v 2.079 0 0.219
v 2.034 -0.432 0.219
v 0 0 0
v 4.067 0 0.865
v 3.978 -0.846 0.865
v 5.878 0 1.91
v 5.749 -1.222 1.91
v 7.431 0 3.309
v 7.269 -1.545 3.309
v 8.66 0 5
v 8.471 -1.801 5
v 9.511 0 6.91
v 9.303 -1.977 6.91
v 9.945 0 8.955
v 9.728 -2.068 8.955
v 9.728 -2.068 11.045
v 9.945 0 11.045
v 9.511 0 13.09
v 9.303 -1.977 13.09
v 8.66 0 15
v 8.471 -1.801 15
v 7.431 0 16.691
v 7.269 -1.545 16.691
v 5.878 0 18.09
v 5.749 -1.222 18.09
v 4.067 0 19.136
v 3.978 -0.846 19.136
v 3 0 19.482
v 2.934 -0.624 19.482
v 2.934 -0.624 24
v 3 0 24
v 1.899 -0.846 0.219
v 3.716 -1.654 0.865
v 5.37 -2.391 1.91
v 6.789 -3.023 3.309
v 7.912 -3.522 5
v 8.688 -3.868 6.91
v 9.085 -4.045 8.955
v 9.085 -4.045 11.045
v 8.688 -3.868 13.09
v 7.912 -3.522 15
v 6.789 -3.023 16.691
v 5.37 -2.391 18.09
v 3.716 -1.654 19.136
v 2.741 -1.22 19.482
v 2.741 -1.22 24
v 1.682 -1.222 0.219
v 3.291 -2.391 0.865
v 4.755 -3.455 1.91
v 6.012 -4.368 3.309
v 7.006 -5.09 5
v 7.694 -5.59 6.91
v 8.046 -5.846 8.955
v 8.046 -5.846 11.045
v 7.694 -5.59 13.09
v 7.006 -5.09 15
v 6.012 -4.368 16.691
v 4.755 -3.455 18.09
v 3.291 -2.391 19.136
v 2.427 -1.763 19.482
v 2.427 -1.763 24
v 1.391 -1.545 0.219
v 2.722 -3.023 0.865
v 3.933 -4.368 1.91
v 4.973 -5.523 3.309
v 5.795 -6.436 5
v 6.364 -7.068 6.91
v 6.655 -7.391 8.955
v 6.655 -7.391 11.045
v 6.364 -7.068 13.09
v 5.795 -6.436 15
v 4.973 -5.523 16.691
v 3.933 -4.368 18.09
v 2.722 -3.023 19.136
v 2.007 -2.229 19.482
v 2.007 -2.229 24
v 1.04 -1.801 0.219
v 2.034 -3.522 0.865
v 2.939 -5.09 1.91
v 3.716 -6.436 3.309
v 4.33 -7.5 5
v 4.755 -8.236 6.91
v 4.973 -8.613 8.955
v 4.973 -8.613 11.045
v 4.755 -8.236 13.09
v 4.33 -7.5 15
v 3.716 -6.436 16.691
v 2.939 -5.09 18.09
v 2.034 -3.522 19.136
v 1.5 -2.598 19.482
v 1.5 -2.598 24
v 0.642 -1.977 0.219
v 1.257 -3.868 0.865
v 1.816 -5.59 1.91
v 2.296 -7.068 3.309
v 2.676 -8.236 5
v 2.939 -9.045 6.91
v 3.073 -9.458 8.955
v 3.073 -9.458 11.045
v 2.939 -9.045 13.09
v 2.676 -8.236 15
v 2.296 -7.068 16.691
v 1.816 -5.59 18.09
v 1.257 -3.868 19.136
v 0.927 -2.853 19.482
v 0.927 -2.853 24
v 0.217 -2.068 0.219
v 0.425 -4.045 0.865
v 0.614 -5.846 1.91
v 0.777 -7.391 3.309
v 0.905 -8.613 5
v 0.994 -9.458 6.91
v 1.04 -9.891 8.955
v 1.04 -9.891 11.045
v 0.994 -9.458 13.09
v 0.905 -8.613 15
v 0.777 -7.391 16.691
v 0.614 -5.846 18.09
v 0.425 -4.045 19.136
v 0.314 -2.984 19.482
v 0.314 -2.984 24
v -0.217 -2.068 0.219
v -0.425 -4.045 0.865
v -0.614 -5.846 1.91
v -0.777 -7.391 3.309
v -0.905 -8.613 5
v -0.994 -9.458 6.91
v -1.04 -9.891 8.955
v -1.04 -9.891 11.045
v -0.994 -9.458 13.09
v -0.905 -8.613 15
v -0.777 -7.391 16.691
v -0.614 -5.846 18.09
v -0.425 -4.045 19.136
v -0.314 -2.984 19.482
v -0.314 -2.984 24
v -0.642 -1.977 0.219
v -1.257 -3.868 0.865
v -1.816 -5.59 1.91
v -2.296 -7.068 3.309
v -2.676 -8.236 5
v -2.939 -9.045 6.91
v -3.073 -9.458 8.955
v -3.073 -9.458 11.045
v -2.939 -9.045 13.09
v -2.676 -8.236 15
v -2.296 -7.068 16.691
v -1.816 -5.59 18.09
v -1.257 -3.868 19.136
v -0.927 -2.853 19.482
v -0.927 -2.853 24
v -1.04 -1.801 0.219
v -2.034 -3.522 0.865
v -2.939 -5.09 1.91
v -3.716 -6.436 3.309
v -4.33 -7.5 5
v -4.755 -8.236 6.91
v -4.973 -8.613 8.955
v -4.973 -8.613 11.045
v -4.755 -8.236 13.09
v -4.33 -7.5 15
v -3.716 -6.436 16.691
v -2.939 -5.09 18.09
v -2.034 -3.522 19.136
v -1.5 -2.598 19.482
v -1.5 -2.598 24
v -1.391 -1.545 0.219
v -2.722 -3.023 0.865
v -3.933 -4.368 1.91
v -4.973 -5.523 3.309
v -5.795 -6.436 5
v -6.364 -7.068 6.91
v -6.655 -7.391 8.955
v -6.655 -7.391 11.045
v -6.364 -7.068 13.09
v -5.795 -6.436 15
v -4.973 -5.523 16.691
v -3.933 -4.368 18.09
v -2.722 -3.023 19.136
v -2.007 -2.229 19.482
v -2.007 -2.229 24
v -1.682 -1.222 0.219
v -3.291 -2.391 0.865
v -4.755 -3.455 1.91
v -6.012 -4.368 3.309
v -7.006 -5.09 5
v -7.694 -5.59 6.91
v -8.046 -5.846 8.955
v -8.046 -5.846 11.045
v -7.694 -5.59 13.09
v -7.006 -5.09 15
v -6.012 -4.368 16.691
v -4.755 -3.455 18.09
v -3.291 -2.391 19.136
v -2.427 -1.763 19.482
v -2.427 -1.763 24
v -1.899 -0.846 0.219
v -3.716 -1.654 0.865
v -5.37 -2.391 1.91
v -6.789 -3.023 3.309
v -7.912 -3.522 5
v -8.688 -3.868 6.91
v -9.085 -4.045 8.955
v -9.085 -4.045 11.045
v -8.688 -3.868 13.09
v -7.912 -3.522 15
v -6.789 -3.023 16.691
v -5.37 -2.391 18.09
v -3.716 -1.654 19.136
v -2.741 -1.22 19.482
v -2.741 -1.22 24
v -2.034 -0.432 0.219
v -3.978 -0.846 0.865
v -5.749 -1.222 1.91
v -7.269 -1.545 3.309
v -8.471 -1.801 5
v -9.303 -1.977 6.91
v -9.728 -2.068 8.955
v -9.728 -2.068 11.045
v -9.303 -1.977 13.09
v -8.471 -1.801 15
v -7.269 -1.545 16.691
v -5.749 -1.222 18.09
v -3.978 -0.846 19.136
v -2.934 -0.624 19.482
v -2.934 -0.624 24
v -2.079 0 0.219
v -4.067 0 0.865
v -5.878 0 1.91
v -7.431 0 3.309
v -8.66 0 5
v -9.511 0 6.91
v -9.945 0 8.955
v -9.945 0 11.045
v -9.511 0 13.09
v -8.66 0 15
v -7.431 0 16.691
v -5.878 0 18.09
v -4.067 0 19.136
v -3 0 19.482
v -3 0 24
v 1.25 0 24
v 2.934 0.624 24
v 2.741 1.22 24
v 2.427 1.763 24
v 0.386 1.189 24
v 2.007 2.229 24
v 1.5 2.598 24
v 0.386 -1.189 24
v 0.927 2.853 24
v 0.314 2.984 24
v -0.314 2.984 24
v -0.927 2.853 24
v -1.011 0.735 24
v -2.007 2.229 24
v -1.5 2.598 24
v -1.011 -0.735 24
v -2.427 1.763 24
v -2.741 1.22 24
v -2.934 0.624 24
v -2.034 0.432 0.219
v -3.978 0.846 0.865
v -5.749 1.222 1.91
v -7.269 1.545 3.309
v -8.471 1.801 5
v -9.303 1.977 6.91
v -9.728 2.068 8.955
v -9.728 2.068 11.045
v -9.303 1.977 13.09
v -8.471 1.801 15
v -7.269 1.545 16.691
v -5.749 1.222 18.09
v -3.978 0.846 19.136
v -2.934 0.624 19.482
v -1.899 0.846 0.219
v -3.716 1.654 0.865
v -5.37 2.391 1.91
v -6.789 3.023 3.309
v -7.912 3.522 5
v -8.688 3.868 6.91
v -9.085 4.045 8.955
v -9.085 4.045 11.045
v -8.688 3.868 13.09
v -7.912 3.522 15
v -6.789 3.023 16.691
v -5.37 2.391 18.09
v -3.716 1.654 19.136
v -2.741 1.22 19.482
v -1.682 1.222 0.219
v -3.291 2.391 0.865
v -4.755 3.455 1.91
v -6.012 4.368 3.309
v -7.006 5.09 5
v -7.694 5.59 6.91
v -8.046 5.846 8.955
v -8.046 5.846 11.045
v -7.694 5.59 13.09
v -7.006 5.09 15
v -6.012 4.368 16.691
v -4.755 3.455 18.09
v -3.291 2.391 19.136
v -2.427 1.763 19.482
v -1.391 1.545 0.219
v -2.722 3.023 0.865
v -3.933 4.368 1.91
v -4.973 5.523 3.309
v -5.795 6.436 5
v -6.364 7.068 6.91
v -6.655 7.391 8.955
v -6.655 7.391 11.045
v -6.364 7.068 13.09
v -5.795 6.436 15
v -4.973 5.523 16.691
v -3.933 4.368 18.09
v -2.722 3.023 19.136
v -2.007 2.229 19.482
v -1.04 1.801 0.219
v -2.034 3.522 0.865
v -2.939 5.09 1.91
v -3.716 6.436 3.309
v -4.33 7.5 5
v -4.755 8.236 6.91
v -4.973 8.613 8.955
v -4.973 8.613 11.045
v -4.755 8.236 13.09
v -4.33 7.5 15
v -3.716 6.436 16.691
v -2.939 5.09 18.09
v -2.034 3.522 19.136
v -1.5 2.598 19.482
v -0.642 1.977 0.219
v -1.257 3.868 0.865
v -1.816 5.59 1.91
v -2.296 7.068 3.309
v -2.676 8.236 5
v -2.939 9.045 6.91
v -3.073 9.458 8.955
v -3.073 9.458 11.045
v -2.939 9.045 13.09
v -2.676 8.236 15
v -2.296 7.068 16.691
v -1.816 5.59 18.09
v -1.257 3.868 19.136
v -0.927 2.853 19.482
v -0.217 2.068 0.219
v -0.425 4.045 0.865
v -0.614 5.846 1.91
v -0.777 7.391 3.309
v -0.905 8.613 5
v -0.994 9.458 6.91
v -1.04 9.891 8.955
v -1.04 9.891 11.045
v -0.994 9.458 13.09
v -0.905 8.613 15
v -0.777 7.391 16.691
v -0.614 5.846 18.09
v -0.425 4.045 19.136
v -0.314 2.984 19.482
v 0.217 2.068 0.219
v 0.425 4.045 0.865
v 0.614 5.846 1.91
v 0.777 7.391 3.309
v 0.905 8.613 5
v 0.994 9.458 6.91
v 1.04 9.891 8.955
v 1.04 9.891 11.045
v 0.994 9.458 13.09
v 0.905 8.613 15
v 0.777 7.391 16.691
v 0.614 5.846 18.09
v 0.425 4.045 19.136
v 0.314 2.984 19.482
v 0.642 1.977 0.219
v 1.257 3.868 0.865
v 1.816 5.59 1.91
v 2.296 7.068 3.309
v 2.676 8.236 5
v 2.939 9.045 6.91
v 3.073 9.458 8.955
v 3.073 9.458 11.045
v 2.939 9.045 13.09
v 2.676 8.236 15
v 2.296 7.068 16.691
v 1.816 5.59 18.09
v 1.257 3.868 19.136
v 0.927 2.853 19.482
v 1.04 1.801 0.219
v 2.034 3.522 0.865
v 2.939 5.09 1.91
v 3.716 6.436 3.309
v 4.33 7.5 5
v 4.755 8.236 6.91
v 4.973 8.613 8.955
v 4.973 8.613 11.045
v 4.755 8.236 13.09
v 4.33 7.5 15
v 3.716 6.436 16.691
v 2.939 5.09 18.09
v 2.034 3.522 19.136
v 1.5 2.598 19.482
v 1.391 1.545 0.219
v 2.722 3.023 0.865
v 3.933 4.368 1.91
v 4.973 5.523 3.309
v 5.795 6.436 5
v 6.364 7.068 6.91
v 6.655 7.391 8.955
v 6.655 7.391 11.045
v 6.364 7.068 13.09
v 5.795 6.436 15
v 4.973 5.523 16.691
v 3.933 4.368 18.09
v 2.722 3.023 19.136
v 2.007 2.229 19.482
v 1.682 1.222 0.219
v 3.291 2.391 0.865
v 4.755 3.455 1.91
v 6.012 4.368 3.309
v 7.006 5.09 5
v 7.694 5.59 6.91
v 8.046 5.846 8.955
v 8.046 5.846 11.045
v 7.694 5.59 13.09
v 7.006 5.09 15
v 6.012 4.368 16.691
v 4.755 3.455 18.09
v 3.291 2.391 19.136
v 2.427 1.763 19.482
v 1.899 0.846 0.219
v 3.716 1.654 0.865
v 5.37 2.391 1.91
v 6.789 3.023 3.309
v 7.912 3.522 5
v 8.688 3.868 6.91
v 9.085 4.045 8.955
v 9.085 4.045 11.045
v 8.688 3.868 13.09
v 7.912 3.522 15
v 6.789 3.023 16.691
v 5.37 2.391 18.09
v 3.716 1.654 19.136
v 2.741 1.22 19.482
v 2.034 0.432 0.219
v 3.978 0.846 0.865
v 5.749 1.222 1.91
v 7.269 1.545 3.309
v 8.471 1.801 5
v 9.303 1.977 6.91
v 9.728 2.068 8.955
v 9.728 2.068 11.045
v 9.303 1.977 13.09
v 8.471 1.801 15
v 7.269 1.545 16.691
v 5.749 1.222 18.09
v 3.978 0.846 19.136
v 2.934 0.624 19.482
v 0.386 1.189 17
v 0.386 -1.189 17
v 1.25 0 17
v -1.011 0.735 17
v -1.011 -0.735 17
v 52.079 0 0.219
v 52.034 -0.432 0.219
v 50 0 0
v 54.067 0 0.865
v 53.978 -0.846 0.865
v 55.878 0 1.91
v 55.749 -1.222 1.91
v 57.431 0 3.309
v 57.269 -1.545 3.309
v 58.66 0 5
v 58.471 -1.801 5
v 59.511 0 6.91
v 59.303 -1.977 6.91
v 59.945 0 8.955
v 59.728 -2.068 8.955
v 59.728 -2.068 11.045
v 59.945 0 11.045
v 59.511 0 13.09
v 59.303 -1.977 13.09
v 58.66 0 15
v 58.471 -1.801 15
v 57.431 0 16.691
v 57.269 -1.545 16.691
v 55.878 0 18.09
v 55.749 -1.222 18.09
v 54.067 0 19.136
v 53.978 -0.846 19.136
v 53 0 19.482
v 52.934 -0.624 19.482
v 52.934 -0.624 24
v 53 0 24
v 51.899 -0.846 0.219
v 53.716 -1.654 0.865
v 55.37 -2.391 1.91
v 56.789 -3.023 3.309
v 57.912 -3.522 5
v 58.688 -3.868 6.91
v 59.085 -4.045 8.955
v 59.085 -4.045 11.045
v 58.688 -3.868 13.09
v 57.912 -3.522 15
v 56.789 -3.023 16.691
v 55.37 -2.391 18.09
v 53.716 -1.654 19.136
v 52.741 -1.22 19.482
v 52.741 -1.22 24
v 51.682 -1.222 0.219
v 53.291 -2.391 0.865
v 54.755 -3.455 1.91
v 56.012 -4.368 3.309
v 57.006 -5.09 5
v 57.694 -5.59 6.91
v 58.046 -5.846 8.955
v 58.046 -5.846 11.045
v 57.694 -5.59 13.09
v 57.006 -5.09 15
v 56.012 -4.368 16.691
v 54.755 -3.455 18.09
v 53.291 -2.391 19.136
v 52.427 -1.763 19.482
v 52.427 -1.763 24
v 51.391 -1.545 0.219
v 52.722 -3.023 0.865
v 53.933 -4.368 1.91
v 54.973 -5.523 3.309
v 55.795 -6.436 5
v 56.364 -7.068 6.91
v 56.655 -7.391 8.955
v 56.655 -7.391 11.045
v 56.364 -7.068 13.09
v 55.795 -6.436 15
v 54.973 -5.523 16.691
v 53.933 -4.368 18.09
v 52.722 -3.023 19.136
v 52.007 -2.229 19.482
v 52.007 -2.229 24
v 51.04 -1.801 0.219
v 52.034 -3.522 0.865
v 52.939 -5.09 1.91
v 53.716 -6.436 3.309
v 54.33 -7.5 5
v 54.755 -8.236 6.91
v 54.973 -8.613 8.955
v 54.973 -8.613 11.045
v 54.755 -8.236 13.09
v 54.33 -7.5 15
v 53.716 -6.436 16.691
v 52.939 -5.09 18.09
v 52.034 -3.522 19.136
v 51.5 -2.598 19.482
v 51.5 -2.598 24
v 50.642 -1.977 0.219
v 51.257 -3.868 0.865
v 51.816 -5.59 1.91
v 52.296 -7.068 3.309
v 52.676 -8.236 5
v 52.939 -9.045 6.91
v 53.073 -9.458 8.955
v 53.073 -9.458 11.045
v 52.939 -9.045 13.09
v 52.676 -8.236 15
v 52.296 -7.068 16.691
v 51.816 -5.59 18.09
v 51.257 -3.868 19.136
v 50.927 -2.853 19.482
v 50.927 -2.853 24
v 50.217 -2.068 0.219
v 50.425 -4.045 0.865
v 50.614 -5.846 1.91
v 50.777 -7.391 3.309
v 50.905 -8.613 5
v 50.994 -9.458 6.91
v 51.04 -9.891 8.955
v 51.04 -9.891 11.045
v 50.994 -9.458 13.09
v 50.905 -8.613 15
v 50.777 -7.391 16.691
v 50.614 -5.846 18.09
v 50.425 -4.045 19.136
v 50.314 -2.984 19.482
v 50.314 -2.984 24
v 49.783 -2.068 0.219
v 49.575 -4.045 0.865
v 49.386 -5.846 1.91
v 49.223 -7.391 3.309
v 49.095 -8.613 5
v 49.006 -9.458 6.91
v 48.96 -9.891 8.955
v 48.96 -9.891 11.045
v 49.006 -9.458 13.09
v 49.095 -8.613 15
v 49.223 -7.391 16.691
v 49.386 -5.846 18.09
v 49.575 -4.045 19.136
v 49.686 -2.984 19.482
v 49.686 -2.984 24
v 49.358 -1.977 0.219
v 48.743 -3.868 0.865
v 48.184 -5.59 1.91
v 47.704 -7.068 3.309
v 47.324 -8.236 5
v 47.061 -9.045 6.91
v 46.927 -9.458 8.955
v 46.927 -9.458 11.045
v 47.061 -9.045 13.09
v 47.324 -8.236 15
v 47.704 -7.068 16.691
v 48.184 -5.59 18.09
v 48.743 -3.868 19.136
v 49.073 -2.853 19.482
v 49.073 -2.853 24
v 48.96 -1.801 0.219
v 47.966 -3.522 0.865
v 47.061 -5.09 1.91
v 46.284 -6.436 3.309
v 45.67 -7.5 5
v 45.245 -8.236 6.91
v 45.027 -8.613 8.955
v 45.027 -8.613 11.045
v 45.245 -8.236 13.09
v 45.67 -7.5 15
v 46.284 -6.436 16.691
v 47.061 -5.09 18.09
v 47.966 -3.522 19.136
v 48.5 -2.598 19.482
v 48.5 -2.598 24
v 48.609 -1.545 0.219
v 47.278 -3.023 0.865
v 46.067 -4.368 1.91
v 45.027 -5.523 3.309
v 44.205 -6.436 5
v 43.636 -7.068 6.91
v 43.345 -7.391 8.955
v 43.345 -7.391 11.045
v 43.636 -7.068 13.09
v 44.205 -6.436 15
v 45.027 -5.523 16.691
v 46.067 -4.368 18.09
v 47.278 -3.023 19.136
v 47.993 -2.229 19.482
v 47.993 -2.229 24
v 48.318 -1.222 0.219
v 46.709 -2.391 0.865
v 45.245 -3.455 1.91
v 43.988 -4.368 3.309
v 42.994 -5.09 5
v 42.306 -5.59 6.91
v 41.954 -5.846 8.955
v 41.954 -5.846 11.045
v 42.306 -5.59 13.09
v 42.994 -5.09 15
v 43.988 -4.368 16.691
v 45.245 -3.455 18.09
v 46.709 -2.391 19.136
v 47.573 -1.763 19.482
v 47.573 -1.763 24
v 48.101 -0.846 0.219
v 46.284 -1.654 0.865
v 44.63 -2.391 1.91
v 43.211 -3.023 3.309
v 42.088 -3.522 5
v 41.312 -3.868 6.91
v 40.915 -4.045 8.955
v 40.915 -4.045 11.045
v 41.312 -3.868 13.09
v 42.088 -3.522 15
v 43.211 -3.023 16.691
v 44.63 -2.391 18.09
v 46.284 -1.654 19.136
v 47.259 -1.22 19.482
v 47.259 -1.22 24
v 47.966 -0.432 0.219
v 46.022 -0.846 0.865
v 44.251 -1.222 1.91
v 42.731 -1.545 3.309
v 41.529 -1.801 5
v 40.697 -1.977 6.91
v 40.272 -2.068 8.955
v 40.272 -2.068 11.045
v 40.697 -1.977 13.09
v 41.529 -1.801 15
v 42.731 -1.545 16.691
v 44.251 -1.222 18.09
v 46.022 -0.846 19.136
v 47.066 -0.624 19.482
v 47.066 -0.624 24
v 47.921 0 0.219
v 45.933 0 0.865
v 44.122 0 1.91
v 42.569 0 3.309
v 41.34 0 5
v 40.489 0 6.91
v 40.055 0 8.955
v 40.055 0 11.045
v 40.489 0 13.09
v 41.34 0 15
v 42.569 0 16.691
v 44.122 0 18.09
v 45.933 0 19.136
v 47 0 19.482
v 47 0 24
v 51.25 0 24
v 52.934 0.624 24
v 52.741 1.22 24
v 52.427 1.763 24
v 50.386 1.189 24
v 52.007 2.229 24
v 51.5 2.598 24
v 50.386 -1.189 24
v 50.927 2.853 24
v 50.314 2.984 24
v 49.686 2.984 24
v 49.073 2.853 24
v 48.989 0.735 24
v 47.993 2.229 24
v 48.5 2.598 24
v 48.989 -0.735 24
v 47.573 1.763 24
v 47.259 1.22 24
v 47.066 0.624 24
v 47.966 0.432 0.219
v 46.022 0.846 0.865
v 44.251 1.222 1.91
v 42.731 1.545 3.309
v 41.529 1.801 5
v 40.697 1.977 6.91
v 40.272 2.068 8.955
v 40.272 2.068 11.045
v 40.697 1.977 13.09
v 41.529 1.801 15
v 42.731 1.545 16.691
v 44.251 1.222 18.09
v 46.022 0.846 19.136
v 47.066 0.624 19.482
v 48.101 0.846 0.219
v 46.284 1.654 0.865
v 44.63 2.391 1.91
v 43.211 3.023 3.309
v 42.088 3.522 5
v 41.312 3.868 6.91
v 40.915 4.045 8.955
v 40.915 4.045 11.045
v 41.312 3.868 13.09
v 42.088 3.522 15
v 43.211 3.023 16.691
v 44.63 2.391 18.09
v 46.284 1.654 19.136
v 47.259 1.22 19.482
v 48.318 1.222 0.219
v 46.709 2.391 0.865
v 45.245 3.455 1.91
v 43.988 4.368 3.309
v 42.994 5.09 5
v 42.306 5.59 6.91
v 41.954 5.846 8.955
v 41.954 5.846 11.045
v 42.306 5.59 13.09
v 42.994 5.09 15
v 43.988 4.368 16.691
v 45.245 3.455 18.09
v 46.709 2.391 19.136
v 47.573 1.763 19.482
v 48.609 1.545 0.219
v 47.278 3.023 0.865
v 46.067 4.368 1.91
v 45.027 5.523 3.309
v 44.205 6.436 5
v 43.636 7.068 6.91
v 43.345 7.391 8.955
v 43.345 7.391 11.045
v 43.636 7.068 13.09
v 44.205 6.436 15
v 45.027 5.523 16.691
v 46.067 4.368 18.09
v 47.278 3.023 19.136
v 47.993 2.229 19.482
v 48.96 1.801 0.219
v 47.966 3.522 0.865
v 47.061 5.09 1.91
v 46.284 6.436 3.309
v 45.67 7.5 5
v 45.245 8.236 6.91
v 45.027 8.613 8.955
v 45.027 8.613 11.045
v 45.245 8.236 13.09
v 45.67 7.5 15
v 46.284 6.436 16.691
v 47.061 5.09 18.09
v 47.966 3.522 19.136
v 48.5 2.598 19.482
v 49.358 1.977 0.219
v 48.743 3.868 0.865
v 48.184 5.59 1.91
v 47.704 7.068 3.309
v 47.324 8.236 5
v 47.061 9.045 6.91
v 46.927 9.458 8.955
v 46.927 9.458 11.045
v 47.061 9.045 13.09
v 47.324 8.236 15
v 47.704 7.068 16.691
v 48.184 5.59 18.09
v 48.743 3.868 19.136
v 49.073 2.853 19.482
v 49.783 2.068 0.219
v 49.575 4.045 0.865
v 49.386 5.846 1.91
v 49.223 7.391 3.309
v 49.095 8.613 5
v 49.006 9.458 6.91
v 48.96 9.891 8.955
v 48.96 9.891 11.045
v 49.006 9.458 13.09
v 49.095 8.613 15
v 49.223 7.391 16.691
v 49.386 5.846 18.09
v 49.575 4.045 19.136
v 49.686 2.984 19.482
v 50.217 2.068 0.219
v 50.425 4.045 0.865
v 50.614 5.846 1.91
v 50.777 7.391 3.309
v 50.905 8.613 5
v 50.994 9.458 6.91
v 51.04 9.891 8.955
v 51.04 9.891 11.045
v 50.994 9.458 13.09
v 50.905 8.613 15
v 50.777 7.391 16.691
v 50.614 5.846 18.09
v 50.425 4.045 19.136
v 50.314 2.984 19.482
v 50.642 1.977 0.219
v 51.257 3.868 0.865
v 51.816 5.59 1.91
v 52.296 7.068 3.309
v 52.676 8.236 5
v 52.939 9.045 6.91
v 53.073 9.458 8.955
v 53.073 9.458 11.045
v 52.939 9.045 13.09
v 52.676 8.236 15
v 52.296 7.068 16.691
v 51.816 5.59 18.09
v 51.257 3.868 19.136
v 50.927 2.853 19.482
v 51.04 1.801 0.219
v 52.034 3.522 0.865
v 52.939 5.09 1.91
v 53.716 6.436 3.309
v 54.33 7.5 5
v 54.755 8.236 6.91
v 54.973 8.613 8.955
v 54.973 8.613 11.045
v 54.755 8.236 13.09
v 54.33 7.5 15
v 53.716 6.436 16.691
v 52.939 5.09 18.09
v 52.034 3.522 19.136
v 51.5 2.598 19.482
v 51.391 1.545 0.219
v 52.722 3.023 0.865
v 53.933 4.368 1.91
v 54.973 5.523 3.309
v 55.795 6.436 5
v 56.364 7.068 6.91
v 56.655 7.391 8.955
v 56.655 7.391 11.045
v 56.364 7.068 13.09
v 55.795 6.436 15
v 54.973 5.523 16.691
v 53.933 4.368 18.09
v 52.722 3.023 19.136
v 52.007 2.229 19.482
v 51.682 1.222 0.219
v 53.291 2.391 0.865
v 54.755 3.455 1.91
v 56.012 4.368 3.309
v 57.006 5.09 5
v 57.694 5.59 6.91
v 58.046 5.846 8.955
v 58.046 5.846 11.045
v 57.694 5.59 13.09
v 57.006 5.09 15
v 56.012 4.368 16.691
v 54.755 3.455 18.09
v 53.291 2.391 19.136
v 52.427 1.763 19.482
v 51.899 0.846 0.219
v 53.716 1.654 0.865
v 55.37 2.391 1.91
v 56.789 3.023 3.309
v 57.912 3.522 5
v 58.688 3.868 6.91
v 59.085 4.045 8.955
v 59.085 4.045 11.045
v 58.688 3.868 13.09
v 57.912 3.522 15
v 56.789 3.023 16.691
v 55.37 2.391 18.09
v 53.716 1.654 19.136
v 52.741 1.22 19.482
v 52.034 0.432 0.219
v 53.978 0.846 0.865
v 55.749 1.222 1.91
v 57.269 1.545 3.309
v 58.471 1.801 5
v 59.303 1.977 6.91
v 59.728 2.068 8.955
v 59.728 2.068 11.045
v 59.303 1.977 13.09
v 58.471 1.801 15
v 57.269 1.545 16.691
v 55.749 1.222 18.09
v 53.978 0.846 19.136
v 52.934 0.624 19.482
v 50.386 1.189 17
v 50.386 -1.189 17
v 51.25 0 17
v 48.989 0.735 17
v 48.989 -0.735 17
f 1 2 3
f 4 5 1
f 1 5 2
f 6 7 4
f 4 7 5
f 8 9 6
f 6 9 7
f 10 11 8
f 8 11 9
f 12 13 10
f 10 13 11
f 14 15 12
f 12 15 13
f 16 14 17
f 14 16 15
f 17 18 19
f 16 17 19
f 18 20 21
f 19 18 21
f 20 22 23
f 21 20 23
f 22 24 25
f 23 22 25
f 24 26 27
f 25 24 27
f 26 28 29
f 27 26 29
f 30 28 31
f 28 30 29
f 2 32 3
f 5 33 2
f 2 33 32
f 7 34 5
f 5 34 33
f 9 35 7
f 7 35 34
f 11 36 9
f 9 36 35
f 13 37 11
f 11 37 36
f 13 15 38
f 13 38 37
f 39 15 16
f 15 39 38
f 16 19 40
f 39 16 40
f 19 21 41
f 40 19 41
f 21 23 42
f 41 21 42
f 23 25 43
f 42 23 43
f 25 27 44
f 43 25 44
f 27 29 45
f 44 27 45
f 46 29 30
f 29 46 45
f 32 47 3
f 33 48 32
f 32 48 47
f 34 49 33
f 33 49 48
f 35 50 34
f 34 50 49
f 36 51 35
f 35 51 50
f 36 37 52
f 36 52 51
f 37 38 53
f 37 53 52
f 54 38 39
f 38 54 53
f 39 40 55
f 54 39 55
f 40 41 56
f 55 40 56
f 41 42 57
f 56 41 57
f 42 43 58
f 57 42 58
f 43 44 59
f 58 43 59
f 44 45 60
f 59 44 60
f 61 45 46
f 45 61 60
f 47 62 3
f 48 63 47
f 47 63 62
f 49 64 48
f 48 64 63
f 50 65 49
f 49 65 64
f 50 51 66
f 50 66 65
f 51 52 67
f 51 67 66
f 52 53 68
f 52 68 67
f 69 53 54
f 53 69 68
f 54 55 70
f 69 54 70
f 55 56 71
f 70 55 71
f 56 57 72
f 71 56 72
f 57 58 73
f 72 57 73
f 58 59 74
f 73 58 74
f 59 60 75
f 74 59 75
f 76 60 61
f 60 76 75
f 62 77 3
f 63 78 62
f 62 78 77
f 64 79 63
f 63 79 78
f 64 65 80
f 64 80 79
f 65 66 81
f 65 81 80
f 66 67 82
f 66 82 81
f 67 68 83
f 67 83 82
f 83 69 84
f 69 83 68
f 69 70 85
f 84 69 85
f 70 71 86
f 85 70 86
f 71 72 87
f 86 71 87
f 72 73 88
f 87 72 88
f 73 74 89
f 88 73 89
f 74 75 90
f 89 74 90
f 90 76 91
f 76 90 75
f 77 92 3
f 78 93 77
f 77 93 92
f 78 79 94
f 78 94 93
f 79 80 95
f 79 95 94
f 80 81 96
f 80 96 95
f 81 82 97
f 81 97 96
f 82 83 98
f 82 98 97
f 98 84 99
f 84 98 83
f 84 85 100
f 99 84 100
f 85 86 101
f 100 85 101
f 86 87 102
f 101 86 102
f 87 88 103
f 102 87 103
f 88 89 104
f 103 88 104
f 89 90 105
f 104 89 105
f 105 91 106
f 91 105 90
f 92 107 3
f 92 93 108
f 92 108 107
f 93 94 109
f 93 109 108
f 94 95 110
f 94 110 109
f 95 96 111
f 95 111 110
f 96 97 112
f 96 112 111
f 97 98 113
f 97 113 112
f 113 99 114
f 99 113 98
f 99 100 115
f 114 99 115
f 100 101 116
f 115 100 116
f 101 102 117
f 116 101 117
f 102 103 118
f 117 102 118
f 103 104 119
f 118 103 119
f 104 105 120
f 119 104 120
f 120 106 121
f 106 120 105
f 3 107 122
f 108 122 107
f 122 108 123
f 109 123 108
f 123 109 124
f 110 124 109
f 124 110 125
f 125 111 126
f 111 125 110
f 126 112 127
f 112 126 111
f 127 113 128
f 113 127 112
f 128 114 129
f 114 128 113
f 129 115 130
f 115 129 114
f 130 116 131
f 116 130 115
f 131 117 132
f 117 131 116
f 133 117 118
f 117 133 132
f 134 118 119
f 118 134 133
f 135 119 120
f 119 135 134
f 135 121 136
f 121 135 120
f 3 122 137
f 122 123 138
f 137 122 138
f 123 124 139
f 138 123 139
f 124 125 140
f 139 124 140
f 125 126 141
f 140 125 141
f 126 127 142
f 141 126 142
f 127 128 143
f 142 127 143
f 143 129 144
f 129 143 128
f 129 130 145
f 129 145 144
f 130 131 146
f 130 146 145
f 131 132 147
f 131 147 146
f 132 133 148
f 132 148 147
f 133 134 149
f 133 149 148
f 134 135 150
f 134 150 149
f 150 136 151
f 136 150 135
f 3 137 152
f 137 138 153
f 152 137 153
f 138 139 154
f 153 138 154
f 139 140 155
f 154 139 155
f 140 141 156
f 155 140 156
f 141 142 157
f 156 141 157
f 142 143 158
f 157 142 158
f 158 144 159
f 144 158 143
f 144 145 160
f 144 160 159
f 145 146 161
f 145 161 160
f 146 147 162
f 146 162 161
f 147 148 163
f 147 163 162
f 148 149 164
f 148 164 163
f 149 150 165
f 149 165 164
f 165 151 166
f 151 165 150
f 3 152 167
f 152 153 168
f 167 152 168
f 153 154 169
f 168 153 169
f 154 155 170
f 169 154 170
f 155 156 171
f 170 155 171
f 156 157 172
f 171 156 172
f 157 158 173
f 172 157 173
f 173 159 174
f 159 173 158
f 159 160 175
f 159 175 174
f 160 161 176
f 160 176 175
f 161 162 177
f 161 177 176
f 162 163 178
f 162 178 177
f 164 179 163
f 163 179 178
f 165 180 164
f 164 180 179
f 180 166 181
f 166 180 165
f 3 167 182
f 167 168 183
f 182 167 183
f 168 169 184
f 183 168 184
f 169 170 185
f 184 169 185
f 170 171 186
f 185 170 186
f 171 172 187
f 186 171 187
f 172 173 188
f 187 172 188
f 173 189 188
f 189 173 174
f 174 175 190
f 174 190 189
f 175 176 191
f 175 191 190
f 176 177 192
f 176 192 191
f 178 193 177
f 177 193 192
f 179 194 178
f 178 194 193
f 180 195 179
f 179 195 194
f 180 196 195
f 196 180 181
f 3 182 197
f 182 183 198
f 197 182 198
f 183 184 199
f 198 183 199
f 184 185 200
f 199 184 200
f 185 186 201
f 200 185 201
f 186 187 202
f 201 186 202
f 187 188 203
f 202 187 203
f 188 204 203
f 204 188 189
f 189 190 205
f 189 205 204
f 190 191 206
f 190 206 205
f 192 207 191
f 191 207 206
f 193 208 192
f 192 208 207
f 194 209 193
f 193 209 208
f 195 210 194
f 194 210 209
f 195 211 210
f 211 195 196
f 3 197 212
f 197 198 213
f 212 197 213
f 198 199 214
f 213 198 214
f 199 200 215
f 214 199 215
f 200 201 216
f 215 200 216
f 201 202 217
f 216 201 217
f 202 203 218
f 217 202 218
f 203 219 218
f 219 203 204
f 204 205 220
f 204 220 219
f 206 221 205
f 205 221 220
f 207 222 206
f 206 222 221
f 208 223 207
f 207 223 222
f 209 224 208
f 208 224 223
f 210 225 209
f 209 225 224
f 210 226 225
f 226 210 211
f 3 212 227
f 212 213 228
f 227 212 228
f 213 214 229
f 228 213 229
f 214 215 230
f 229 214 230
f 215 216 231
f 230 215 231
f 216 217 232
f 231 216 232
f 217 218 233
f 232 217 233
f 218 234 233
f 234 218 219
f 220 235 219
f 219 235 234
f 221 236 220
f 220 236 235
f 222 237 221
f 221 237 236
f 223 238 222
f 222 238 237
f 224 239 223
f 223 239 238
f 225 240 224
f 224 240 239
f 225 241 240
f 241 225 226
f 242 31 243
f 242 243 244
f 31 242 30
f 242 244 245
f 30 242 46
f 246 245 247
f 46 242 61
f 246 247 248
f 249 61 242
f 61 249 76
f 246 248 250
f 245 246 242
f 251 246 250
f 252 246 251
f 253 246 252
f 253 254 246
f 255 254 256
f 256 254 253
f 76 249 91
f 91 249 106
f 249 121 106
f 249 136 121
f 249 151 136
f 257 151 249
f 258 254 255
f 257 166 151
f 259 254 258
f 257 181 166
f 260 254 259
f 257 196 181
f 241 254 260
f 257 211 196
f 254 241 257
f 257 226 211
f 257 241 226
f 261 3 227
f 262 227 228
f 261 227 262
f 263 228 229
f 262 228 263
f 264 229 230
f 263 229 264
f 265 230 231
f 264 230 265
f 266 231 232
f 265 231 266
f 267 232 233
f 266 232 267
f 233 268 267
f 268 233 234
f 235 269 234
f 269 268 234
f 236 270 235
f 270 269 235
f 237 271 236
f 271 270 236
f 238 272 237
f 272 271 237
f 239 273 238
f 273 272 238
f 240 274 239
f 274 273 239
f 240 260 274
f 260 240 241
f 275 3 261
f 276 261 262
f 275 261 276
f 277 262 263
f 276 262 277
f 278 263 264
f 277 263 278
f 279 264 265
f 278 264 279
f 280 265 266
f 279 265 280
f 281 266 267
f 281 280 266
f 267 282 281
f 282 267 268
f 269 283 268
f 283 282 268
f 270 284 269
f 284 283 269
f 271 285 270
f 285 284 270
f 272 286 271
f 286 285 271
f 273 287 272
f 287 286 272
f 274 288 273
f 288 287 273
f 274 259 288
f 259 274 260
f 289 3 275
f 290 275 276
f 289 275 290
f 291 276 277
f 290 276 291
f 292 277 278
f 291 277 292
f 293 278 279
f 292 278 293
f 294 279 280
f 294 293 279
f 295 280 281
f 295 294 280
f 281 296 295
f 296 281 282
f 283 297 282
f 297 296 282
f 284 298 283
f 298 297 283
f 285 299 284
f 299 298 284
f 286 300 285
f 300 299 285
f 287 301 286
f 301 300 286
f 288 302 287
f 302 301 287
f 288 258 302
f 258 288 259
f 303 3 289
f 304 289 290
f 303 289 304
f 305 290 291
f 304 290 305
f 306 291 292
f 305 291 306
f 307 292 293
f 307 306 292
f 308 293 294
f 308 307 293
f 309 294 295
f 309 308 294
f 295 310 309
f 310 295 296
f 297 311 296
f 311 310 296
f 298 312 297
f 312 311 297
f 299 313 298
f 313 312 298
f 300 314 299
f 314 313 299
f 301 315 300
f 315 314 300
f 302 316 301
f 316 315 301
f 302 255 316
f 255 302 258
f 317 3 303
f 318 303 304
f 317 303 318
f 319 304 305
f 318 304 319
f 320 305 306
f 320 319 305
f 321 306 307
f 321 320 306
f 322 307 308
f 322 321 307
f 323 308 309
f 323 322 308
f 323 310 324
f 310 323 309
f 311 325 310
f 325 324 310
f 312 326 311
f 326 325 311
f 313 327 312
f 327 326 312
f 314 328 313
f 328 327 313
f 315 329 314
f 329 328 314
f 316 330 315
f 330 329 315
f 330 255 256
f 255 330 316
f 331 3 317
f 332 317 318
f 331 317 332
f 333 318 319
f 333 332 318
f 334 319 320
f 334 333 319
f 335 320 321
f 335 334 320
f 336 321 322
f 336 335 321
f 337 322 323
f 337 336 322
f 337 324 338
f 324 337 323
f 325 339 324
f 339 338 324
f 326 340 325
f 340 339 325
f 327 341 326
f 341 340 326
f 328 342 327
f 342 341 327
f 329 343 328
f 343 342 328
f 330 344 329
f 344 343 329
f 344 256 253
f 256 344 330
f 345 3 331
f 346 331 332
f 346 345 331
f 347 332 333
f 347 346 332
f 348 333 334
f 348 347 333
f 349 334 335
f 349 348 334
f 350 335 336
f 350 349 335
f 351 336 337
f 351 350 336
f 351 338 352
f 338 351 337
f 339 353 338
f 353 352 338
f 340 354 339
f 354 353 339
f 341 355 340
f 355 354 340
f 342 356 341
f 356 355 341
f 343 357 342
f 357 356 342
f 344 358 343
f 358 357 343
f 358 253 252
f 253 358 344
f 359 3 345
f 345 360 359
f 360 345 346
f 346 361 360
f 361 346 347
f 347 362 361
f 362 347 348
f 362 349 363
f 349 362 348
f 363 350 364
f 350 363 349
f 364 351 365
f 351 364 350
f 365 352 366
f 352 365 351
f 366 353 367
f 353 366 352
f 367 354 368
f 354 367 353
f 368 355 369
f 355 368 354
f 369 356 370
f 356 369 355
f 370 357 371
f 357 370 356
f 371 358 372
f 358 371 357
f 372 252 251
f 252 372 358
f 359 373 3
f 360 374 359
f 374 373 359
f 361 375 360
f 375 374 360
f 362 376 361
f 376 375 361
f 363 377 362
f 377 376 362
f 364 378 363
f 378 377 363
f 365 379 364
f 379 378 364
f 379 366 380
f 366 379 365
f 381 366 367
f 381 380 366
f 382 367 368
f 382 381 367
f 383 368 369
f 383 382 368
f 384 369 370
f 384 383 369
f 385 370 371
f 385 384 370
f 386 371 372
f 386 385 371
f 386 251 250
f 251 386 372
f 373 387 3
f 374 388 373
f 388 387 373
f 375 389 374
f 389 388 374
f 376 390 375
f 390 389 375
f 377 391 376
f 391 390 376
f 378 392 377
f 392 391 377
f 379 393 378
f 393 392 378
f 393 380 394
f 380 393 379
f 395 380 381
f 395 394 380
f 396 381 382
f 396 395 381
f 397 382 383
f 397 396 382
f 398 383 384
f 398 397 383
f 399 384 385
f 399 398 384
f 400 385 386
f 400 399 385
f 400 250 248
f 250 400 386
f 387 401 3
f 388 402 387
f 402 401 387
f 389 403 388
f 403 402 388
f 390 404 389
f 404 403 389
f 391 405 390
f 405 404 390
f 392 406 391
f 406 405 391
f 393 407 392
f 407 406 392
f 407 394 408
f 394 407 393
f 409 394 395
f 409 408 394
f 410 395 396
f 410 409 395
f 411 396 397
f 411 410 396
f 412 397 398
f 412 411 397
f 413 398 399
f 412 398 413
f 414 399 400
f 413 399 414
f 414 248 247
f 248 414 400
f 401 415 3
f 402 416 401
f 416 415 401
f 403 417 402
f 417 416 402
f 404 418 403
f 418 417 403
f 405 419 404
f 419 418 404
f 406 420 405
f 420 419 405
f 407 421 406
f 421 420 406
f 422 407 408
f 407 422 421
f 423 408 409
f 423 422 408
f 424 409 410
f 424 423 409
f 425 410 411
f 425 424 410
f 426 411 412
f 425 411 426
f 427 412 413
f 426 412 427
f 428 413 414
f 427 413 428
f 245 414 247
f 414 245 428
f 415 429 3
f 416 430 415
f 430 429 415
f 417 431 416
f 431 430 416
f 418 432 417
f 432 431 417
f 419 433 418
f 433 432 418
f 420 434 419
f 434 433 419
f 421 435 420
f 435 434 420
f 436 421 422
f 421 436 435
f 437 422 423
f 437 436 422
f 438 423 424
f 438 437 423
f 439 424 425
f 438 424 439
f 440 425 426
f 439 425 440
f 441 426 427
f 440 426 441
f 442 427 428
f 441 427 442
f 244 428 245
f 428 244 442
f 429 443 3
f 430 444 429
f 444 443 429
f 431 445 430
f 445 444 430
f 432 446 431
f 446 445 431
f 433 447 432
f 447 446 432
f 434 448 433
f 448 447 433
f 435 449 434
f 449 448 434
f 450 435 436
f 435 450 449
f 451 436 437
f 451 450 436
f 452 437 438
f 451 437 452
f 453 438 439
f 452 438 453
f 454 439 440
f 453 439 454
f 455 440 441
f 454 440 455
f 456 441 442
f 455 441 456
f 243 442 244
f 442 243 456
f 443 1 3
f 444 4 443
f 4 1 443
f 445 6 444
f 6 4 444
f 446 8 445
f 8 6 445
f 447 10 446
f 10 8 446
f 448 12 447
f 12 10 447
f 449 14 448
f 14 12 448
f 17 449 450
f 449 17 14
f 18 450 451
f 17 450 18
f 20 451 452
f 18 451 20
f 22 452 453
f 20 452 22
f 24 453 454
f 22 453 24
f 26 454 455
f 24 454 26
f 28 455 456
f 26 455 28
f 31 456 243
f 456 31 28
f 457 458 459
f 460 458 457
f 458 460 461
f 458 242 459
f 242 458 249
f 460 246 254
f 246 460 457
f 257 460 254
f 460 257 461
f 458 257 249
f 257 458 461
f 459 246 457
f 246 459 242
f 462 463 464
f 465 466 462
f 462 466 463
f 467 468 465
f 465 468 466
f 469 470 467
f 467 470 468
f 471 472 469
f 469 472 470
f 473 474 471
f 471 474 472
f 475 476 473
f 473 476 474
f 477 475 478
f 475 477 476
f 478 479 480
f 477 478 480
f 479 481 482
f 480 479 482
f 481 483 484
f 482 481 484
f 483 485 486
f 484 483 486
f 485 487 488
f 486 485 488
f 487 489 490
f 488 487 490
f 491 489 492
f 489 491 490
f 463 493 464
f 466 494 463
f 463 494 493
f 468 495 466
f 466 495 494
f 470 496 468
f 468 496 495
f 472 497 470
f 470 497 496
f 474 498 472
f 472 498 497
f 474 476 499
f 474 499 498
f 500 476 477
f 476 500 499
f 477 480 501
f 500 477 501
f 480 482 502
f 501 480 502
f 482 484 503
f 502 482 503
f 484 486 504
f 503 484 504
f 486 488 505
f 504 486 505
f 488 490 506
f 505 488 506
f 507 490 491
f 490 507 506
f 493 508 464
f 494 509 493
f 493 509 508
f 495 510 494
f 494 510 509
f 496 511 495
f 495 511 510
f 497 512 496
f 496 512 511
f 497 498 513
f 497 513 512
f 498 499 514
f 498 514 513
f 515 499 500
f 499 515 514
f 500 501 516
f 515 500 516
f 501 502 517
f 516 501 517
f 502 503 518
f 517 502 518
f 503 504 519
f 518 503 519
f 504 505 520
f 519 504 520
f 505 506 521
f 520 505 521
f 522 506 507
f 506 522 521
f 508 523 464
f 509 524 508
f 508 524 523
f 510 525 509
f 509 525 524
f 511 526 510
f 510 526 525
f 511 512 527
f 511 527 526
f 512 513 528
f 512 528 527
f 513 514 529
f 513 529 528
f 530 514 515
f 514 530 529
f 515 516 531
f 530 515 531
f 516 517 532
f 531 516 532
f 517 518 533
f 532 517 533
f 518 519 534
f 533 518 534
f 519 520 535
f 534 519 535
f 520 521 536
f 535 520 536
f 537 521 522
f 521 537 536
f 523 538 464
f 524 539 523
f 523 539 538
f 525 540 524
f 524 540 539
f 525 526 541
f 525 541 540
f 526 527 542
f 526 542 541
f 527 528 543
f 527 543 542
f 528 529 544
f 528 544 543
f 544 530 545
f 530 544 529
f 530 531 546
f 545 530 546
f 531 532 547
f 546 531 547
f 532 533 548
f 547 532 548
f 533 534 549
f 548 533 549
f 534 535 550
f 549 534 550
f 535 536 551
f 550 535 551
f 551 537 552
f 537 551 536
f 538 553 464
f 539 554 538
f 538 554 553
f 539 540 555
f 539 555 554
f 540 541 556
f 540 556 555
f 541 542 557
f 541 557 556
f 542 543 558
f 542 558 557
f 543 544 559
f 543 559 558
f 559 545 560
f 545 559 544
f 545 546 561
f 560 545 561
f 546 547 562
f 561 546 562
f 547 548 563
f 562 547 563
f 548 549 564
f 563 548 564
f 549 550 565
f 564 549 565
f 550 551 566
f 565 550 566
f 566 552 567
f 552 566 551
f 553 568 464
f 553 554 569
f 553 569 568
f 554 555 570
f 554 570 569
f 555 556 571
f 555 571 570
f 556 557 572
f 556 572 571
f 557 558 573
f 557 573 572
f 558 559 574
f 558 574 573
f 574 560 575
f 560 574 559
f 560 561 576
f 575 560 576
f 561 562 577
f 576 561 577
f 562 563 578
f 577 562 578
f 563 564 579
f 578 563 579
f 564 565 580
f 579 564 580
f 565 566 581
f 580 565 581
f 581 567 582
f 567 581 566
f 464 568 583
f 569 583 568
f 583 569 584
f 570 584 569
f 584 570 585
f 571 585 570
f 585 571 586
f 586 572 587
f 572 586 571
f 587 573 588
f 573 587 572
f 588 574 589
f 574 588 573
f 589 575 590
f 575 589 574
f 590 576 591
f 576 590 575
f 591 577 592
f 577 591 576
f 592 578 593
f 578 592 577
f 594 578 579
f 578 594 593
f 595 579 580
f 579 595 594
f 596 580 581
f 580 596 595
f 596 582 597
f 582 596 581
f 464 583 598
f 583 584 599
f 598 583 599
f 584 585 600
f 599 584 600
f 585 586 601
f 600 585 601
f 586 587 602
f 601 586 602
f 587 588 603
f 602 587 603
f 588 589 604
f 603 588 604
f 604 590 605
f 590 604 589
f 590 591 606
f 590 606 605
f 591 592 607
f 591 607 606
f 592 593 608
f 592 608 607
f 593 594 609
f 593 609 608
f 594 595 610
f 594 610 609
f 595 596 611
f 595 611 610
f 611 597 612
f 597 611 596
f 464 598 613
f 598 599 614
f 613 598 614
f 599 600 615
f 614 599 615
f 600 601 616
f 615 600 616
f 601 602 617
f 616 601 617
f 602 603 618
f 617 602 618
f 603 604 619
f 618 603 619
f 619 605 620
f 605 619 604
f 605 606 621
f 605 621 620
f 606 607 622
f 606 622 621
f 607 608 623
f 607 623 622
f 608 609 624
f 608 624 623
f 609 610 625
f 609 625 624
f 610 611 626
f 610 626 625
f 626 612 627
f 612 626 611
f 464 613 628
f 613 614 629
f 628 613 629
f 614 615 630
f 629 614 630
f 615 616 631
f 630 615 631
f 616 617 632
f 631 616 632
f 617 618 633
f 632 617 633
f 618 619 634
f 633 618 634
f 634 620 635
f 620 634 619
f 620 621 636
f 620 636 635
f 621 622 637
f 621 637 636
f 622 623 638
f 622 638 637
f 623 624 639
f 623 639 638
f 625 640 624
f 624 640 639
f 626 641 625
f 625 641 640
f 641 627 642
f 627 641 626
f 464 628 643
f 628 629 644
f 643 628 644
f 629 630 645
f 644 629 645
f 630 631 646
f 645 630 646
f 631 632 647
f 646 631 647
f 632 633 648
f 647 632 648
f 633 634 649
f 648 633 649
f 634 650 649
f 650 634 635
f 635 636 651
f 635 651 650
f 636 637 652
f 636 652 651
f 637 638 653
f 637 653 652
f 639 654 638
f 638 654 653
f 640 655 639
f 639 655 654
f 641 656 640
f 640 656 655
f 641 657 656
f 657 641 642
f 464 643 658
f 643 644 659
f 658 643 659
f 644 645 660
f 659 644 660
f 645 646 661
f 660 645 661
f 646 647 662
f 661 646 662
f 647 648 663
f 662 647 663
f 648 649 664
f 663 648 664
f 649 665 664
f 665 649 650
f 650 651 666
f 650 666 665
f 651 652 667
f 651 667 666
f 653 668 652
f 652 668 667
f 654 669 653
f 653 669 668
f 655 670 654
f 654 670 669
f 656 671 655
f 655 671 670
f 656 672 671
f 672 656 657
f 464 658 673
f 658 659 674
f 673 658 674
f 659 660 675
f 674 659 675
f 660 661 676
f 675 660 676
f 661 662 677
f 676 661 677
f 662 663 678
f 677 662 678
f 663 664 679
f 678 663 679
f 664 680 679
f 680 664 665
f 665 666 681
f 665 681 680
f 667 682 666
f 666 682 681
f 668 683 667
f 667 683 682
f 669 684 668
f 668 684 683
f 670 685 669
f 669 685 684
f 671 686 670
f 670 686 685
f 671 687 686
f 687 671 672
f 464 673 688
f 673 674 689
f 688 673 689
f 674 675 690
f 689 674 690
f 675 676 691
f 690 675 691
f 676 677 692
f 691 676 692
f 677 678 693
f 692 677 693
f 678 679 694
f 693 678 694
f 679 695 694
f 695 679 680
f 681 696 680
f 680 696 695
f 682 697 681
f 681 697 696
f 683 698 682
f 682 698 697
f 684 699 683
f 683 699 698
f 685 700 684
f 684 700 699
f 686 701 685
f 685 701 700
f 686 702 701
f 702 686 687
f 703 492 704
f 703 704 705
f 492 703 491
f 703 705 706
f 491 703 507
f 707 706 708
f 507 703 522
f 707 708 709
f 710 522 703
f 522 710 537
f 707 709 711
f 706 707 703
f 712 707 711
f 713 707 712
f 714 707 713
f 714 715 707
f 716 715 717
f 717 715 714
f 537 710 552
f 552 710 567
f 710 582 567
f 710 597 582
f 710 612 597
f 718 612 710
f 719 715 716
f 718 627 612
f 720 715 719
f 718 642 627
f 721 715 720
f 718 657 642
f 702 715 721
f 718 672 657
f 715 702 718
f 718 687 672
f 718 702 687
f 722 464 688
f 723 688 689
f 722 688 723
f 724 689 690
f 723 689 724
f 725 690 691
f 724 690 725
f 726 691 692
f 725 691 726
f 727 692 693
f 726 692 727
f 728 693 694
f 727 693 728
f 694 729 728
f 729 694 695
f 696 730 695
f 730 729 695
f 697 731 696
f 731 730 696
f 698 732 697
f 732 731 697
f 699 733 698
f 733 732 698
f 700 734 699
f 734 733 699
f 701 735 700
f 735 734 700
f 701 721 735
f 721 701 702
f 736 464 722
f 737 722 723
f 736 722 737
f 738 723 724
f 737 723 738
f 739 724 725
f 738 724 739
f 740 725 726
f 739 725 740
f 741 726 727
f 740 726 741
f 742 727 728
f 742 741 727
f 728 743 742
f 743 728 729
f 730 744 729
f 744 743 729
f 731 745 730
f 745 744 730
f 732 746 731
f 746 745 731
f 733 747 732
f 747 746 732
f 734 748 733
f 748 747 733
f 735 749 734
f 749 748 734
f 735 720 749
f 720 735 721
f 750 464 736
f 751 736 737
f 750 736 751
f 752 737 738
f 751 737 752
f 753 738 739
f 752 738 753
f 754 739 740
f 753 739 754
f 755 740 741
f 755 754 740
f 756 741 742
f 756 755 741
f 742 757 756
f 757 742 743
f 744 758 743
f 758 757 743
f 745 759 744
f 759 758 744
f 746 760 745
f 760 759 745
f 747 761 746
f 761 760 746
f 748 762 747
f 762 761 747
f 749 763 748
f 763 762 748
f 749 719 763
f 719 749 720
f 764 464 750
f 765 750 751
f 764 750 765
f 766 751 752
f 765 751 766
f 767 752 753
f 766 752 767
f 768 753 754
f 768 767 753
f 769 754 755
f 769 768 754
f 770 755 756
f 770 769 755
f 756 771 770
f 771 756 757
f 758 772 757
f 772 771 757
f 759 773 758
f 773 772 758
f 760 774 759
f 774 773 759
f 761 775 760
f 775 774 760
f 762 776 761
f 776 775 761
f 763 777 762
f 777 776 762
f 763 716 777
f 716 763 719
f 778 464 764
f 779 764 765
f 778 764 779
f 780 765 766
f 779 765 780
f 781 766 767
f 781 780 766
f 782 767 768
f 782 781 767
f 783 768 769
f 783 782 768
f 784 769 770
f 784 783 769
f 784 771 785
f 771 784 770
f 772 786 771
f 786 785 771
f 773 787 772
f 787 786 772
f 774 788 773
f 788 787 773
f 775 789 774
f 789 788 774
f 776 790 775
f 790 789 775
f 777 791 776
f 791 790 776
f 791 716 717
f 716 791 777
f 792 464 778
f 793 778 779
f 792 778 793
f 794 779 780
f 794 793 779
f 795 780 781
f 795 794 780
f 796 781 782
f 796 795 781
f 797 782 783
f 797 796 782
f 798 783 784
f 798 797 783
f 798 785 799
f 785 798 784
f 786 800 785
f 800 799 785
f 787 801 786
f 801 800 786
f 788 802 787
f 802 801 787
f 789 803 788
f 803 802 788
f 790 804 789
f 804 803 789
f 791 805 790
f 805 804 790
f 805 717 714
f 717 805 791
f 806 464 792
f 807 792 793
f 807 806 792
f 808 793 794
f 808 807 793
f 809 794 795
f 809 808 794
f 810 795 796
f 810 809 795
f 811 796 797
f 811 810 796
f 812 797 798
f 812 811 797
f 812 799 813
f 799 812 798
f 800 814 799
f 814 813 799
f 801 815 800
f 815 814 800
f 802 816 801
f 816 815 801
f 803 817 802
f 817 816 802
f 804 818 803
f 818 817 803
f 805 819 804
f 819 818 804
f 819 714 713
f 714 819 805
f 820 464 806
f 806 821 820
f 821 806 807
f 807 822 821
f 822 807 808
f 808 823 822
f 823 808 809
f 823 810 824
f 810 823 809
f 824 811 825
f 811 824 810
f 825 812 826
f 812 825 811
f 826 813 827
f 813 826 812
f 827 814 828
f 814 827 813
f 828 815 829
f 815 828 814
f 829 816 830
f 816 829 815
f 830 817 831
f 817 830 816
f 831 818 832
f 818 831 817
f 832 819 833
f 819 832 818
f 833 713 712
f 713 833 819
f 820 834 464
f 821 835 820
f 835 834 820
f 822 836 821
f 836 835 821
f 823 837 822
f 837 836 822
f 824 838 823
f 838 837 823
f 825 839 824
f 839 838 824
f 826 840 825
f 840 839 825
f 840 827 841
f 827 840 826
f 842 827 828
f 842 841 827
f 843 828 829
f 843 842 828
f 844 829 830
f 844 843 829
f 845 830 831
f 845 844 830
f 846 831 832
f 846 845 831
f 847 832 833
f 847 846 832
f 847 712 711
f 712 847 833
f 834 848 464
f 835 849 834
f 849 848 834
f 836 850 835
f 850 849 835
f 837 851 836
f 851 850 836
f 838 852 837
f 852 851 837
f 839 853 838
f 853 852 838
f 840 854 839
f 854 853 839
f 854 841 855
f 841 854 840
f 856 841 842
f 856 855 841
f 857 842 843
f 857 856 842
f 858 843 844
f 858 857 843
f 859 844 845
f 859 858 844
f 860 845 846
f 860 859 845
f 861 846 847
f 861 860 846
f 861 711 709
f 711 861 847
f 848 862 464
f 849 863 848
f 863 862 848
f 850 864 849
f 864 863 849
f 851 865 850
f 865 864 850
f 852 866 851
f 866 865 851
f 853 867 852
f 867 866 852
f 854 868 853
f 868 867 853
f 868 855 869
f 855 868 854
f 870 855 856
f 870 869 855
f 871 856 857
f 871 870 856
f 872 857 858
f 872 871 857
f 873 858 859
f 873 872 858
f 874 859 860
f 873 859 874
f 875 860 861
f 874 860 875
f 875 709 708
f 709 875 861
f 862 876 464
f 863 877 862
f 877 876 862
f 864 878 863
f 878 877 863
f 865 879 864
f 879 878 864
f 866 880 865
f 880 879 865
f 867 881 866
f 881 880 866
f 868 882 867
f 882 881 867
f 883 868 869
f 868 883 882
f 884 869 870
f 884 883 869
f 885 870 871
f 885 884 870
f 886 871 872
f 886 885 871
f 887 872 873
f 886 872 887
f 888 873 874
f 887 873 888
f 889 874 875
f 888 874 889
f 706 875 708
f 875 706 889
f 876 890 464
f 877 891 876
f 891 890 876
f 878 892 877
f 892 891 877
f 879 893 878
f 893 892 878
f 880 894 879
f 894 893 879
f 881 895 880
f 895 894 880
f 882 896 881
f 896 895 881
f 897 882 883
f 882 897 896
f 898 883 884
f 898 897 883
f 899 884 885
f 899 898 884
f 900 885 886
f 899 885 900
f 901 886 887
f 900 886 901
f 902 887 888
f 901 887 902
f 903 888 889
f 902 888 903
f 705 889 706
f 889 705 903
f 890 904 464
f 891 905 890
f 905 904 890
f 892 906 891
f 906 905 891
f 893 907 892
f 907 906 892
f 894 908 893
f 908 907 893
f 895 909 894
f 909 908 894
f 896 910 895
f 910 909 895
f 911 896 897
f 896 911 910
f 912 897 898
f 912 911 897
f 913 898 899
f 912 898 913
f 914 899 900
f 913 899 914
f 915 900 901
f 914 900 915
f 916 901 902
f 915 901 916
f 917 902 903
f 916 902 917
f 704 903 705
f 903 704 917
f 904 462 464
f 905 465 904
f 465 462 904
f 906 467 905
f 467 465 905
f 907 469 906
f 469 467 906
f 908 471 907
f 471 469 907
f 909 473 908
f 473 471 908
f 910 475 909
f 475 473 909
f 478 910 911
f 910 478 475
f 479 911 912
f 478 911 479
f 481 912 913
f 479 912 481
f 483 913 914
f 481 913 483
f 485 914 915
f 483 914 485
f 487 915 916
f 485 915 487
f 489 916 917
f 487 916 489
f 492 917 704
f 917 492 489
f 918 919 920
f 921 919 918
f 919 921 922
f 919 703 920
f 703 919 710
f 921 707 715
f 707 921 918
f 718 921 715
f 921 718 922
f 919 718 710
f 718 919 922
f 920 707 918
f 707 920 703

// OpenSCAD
module lineup(num, space) {
   for (i = [0 : num-1])
     translate([ space*i, 0, 0 ]) children(0);
}


lineup(2, 50){
difference(){
rotate_extrude(angle=360, convexity=10){
    rotate([0,0,90]){
translate([10,0,0]){
difference(){
circle(10);
    translate([0,-10,0]){
    square([20,20], center=true);
    }
}
translate([8,0,0]){
    square([6,3], center=false);
}
}
}
}
color("#FF0000"){
translate([0,0,21]){
    linear_extrude(height=8,center=true,convexity=10,twist=0,slices=8){
    circle(d=2.5);
    }
}
}
}
}
